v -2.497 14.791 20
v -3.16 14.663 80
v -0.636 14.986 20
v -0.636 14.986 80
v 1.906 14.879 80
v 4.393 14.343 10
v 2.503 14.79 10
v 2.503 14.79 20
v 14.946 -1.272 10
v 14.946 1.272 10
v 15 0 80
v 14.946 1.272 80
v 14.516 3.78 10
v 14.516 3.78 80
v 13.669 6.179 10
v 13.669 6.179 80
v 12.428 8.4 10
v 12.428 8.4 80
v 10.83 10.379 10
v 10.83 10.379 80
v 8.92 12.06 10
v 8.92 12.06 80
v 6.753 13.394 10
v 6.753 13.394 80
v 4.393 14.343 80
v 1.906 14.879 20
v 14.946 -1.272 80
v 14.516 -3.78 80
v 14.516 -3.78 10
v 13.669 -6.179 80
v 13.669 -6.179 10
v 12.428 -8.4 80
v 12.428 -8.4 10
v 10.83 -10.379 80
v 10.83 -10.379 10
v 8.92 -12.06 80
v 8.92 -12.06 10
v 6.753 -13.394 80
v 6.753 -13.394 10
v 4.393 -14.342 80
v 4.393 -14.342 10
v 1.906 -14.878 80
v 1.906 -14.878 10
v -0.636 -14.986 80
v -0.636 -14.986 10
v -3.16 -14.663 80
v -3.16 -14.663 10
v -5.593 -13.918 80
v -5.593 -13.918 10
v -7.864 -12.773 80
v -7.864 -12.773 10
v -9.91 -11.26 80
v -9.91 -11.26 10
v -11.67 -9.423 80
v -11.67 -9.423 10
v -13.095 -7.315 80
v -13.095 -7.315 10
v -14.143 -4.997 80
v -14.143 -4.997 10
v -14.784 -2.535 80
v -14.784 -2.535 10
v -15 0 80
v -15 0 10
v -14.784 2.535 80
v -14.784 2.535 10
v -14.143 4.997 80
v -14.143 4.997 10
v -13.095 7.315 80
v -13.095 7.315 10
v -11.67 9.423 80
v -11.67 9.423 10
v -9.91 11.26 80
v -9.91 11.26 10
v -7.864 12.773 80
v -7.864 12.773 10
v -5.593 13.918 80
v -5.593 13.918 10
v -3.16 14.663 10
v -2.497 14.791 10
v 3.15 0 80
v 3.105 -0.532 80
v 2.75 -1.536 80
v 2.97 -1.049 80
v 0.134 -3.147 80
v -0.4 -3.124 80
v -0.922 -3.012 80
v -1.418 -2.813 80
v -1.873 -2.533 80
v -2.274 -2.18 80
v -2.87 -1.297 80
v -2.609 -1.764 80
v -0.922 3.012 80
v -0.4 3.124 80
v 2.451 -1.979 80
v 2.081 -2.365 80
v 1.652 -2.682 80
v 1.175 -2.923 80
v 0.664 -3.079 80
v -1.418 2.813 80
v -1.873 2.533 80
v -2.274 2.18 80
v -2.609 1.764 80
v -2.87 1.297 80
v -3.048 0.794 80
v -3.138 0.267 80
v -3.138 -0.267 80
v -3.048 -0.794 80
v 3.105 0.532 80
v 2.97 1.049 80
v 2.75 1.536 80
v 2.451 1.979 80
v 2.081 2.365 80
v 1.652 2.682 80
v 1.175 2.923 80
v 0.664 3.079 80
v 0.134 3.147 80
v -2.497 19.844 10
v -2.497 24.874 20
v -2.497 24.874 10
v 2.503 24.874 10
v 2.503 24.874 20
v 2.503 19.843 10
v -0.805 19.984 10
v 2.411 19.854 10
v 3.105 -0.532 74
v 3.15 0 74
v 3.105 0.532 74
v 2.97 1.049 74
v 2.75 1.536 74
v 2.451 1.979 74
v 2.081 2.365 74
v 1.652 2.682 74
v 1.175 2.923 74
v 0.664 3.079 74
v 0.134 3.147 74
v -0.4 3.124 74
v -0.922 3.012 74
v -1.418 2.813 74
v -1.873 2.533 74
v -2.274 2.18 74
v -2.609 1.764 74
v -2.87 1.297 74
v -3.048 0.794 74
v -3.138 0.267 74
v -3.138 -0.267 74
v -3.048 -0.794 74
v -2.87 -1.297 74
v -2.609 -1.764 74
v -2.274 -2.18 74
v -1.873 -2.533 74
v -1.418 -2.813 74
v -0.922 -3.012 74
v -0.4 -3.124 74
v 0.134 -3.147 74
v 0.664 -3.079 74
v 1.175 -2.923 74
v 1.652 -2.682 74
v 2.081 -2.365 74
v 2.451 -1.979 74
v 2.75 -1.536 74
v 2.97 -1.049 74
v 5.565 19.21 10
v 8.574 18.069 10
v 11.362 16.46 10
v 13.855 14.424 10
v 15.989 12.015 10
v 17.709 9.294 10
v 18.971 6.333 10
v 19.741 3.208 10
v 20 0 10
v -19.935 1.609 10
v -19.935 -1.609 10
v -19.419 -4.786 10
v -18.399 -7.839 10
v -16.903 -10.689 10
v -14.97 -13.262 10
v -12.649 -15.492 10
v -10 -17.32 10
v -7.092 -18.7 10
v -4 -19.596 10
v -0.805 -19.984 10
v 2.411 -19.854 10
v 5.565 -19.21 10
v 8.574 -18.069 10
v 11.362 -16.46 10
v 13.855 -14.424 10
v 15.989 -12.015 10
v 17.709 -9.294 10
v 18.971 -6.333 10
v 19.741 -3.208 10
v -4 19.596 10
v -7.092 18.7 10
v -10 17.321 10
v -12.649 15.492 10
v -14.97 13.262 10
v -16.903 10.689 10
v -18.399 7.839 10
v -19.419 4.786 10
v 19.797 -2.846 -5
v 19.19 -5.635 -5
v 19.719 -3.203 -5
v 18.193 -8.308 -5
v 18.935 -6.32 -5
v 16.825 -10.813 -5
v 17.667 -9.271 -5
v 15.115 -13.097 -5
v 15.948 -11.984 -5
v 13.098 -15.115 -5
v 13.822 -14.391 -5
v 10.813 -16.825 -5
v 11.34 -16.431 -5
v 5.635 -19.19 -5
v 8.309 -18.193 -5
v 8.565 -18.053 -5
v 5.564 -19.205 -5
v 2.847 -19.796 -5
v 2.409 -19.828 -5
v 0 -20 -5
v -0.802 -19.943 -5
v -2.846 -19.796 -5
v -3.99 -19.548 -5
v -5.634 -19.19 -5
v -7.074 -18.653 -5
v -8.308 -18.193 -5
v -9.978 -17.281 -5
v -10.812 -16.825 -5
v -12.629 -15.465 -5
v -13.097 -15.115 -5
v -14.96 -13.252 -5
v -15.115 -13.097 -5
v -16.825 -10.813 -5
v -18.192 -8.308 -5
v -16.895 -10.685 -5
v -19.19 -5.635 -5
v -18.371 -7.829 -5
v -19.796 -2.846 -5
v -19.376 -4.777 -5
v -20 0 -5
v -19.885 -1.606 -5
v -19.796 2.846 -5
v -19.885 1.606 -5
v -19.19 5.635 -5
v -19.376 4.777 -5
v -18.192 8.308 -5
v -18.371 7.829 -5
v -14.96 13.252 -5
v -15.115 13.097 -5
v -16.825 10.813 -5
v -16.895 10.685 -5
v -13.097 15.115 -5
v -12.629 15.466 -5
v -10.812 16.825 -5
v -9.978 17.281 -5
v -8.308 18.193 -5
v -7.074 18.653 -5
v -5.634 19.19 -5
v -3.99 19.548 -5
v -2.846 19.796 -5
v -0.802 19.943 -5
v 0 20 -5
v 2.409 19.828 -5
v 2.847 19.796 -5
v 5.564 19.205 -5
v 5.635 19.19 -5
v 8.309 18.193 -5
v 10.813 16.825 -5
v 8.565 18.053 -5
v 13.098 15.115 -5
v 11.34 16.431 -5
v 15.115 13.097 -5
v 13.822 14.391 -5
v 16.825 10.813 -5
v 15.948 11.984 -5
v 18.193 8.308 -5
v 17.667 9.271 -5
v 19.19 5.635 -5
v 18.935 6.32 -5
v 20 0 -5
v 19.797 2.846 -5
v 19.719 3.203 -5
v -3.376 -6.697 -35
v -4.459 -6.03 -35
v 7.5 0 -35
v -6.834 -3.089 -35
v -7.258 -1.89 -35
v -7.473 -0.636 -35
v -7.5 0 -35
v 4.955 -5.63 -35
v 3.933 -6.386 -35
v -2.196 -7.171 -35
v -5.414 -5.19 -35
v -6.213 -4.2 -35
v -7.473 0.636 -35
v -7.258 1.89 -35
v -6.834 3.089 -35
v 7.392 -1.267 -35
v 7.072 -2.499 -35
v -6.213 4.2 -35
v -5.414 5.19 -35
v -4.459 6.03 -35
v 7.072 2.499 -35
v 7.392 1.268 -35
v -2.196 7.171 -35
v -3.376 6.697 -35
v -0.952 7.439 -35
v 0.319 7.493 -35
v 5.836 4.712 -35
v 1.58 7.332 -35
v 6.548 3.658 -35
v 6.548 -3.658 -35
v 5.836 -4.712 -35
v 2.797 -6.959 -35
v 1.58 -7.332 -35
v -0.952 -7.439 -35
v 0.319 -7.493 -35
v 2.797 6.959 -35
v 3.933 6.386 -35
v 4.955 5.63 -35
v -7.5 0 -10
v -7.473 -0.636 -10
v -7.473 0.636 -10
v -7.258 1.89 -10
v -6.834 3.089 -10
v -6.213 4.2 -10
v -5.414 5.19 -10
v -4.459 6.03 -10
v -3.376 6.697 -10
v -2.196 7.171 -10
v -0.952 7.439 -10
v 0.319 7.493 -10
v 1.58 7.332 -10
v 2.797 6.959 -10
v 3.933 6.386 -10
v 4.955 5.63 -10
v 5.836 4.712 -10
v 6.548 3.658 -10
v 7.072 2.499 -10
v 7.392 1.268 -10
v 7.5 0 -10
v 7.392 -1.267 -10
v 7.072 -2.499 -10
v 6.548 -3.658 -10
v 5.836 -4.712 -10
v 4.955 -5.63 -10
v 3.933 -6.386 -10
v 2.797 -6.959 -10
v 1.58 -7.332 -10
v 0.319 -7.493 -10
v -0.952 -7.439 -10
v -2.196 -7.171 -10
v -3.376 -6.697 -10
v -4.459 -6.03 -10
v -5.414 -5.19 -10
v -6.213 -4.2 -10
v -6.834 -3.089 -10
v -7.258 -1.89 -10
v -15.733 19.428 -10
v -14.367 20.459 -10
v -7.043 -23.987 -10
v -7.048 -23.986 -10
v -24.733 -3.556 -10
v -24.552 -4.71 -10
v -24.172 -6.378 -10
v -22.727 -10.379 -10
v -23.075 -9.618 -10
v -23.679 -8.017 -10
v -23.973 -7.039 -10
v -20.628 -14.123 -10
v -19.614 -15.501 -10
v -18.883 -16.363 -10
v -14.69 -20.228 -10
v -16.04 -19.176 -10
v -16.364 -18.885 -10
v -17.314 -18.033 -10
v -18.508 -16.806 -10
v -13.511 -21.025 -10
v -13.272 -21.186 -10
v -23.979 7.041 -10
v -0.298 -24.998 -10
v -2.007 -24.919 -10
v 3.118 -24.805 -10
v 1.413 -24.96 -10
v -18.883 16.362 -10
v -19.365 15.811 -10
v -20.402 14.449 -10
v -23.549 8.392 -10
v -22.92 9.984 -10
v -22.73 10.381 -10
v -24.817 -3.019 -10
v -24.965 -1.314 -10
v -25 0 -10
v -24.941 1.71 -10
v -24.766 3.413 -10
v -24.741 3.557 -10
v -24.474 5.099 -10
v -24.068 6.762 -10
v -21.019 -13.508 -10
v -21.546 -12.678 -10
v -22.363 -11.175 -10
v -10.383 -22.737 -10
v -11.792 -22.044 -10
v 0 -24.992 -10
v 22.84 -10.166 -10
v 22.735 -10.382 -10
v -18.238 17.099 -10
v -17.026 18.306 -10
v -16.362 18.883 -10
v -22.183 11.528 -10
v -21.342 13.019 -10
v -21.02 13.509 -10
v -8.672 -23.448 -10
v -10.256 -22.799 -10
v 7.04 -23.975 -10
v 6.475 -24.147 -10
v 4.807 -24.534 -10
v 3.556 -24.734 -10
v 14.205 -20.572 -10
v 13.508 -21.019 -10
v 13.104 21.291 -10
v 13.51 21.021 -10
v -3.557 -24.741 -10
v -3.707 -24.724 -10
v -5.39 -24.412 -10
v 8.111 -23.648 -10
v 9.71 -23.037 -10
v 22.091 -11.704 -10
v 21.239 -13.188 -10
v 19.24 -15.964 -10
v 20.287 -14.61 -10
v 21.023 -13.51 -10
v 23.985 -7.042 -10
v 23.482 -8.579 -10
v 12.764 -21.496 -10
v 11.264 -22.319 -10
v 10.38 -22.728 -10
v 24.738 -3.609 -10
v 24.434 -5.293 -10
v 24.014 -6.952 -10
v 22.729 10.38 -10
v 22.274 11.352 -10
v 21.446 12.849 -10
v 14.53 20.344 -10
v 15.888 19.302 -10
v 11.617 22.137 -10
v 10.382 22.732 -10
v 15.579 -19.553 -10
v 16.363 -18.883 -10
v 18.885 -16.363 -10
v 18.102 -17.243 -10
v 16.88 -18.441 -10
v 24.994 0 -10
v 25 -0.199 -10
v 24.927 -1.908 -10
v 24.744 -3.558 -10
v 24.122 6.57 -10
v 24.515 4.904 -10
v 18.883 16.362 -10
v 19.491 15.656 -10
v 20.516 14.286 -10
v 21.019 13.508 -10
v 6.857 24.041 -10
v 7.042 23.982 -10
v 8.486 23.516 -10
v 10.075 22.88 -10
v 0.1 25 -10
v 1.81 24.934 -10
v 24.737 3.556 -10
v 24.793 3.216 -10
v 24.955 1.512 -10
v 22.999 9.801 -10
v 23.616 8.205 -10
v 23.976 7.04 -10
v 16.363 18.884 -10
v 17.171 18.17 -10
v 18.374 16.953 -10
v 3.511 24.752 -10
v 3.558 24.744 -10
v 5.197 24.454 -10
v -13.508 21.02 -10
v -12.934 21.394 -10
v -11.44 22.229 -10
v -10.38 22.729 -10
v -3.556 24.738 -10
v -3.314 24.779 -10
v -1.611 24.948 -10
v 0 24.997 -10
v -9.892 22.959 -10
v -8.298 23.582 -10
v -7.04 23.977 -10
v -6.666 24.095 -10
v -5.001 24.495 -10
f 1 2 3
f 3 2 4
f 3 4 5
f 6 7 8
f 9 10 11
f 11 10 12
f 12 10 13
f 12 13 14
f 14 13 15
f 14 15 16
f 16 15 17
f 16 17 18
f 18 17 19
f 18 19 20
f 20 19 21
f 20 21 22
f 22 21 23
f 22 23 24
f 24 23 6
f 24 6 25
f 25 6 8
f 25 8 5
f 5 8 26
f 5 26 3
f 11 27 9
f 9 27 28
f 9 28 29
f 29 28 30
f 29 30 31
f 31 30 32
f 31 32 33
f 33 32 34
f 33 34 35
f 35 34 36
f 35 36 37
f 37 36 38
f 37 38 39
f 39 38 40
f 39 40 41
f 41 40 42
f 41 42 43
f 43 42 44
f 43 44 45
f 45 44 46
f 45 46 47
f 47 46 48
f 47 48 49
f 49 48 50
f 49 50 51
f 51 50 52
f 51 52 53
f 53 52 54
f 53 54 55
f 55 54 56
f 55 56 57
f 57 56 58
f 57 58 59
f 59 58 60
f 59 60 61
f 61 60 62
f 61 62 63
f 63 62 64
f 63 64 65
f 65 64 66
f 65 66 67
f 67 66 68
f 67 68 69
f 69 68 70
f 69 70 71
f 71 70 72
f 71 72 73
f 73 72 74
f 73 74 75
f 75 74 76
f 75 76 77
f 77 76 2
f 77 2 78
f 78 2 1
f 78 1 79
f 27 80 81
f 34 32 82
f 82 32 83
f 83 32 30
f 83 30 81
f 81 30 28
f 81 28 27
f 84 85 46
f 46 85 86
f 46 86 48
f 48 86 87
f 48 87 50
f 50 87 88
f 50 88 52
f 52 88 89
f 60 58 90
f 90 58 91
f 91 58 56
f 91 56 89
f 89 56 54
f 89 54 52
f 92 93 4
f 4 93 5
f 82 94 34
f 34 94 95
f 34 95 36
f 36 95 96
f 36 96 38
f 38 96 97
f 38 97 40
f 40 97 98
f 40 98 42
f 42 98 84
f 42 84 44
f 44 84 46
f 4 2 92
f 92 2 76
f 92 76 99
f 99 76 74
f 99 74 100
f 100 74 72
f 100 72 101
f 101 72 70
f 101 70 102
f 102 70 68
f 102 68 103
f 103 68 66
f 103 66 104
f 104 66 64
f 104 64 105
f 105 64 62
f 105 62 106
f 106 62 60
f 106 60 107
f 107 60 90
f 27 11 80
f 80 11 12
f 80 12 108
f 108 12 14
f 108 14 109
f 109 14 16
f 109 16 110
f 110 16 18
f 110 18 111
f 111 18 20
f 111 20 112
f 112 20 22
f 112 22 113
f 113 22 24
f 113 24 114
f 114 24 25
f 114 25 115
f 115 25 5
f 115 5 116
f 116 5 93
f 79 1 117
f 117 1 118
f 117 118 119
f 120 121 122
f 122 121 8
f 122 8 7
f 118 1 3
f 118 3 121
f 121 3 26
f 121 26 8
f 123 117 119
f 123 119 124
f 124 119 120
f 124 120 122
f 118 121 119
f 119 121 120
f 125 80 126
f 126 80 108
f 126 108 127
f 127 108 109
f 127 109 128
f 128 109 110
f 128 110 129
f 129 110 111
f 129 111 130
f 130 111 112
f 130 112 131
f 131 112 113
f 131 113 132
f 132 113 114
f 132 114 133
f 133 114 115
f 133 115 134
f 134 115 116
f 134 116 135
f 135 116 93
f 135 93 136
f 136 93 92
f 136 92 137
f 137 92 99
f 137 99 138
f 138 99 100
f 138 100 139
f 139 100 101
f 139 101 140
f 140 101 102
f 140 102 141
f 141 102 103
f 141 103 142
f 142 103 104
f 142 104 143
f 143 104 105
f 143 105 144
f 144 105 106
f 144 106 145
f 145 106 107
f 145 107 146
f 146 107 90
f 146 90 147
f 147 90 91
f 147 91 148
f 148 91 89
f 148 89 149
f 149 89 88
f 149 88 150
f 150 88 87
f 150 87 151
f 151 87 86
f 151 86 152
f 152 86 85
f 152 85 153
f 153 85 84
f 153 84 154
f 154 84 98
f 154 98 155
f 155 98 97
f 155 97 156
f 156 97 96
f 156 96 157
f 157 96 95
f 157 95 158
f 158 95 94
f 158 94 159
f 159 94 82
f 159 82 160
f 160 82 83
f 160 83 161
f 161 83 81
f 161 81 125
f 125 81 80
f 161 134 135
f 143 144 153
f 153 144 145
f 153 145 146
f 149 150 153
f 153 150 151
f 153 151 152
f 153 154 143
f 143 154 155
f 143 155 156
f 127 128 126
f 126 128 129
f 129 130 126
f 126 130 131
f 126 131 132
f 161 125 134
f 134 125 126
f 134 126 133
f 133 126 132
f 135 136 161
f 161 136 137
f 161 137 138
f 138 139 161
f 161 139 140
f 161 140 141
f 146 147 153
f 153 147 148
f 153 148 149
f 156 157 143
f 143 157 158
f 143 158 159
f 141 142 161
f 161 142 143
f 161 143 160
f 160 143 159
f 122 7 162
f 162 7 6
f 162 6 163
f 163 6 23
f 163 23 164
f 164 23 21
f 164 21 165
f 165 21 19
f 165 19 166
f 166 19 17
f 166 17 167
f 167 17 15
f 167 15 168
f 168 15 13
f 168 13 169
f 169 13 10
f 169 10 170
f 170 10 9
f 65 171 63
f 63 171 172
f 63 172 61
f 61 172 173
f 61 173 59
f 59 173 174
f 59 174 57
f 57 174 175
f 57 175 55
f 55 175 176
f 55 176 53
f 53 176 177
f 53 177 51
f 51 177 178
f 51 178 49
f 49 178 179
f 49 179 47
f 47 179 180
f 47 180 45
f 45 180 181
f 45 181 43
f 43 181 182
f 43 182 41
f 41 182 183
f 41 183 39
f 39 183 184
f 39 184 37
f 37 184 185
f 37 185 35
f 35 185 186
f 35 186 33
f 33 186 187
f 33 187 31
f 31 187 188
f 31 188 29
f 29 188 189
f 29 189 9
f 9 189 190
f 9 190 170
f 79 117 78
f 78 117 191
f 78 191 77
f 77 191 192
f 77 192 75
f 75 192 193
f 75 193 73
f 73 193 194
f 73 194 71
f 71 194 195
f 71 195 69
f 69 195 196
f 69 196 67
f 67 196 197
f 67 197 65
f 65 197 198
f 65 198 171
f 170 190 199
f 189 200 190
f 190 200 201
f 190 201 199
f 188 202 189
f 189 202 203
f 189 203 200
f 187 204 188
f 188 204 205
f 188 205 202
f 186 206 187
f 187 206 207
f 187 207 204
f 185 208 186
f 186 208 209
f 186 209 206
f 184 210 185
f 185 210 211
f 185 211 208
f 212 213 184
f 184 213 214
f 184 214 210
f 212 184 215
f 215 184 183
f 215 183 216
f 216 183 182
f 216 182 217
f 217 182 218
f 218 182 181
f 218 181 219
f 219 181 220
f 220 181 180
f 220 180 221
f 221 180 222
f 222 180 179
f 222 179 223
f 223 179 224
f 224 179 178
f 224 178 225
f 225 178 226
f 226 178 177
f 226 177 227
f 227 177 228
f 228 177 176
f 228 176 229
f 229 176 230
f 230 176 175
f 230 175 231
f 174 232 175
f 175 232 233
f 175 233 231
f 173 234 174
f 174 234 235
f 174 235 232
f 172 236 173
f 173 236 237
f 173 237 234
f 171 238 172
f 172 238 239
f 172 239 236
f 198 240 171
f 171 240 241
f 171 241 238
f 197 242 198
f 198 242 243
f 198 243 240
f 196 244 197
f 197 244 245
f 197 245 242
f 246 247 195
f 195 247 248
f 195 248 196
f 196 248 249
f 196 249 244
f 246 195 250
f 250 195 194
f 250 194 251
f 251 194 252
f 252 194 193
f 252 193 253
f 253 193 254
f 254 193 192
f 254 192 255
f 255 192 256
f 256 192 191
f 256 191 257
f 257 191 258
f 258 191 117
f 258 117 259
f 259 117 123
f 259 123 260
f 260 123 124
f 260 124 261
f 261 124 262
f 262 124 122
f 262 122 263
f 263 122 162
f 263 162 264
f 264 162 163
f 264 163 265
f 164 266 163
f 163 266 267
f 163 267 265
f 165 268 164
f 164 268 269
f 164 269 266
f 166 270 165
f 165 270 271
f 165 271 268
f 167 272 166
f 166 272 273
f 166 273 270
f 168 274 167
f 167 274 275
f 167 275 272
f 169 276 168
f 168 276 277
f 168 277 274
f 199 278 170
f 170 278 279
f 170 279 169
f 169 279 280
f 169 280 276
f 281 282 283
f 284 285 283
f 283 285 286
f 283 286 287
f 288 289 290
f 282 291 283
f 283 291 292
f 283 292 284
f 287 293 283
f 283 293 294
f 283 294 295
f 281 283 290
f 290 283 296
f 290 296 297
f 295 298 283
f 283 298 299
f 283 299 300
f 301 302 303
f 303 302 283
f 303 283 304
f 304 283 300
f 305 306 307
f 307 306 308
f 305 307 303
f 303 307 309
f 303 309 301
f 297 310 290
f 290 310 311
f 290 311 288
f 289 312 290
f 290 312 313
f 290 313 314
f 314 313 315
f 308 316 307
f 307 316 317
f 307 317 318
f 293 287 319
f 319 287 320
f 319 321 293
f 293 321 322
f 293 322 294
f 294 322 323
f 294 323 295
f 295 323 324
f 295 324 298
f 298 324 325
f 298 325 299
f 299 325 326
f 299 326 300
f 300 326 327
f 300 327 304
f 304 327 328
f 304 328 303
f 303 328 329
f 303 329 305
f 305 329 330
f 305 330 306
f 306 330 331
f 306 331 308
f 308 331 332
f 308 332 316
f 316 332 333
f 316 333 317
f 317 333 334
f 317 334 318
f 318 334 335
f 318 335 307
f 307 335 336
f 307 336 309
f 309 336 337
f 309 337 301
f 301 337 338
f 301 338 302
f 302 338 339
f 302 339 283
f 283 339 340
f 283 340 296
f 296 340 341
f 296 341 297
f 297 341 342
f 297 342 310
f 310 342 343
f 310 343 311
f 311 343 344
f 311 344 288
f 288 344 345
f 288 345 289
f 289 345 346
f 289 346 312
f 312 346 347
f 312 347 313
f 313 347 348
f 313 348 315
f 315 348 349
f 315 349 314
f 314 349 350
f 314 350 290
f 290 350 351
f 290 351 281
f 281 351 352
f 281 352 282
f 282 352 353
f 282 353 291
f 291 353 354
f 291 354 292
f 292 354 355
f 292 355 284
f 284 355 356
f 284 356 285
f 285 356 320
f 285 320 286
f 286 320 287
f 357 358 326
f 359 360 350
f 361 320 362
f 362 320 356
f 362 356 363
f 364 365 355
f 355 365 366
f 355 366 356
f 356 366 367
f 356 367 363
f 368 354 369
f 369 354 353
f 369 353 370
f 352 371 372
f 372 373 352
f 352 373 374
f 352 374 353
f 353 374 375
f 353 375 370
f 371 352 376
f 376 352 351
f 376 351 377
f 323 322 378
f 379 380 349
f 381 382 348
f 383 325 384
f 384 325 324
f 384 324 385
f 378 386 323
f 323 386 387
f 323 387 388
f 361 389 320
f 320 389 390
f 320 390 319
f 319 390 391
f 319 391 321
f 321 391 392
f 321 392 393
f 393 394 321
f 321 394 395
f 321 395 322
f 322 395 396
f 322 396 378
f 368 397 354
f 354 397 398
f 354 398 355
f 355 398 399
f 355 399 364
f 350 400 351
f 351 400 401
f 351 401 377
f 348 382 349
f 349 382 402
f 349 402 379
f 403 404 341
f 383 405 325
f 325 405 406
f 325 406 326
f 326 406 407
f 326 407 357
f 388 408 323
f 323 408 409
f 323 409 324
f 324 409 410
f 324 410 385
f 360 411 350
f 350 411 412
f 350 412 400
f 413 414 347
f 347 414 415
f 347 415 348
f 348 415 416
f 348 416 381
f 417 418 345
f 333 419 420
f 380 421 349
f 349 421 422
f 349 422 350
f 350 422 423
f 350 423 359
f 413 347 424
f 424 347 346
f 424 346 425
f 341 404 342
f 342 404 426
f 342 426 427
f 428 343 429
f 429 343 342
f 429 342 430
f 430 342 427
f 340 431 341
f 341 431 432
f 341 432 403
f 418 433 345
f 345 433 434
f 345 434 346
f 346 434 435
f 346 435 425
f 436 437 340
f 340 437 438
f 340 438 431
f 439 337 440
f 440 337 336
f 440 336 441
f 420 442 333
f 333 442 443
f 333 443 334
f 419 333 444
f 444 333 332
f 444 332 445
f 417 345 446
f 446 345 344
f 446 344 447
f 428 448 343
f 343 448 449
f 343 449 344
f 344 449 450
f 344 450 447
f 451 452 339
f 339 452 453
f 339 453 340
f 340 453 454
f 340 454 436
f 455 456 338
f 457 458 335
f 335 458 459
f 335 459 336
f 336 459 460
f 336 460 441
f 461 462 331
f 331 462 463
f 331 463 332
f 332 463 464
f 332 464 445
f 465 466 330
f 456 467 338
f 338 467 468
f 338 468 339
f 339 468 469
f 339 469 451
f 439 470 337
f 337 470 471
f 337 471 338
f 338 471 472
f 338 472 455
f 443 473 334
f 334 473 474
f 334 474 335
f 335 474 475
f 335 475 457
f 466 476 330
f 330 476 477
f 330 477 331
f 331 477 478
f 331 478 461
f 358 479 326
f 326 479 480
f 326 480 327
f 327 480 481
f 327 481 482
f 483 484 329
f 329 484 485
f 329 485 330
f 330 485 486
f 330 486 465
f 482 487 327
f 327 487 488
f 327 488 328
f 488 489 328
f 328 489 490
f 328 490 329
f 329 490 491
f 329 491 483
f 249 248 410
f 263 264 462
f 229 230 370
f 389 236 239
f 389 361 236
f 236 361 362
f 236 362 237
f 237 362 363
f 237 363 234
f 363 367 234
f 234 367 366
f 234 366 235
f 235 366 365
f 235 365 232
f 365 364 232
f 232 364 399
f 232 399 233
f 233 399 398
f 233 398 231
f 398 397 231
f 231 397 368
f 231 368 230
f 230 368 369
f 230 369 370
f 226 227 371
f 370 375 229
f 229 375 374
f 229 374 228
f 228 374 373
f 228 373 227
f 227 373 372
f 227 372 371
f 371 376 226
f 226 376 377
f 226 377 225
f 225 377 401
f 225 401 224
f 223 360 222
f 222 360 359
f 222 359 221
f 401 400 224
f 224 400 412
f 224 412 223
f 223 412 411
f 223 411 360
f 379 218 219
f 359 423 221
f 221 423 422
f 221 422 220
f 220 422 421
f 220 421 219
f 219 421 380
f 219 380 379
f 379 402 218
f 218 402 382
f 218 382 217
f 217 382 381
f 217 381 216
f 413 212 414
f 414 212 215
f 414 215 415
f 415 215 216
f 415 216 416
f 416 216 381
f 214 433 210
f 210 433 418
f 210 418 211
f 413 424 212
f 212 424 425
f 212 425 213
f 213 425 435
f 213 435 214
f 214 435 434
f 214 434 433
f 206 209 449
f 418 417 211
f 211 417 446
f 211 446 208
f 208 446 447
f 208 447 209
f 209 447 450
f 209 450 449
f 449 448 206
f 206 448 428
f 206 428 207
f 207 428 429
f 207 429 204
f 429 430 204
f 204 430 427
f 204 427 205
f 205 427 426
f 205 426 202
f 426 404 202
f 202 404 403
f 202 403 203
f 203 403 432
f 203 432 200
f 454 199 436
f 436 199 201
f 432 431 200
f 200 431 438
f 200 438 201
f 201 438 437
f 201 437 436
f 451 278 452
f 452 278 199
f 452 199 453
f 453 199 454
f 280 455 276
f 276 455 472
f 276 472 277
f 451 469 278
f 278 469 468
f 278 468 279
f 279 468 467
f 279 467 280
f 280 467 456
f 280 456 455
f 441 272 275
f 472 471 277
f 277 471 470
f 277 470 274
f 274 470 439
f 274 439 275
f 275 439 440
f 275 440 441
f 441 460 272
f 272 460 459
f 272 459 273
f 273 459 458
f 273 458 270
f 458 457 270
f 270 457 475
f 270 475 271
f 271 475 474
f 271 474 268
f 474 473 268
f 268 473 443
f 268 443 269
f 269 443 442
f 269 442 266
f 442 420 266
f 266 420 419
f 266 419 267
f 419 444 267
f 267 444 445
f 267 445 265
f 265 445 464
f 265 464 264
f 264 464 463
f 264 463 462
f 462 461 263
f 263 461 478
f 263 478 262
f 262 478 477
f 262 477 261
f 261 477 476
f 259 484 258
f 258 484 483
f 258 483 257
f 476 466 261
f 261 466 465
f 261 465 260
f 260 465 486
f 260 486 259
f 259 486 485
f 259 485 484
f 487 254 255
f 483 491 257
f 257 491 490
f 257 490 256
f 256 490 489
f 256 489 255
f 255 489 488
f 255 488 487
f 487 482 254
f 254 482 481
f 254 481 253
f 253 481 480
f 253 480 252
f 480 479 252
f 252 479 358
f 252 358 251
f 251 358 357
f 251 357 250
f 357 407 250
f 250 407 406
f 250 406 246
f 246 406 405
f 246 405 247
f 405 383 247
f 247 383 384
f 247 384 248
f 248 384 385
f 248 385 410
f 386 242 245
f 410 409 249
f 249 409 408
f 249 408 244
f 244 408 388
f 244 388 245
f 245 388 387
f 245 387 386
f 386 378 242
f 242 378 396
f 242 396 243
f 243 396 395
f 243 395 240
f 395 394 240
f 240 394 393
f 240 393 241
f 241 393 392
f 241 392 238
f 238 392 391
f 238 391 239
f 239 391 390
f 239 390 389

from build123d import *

# Parameters (mm, degrees)
SKETCH1_R           = 15
BOSS_EXTRUDE1_DEPTH = 80
SKETCH1_2_R         = 15
SKETCH2_R           = 25
SKETCH3_R           = 7.5
BOSS_EXTRUDE2_DEPTH = 25
SKETCH4_W           = 5
SKETCH4_H           = 25
BOSS_EXTRUDE3_DEPTH = 10
SKETCH5_R           = 3.15
CUT_EXTRUDE1_DEPTH  = 6
SKETCH6_R           = 20
BOSS_EXTRUDE4_DEPTH = 15


with BuildPart() as part:
    # Sketch1 → Boss-Extrude1 (new body)
    with BuildSketch(Plane.XY):
        Circle(SKETCH1_R)
    extrude(amount=BOSS_EXTRUDE1_DEPTH)

    # Sketch1<2> → Loft1 section 0
    with BuildSketch(Plane.XY):
        Circle(SKETCH1_2_R)
    # Sketch2 → Loft1 section 1
    with BuildSketch(Plane(origin=(0, 0, -10), x_dir=(-1, 0, 0), z_dir=(0, 0, -1))):
        Circle(SKETCH2_R)
    loft()

    # Sketch3 → Boss-Extrude2 (add)
    with BuildSketch(Plane(origin=(0, 0, -10), x_dir=(-1, 0, 0), z_dir=(0, 0, -1))):
        Circle(SKETCH3_R)
    extrude(amount=BOSS_EXTRUDE2_DEPTH)

    # Sketch4 → Boss-Extrude3 (add)
    with BuildSketch(Plane.XY.offset(10)):
        with Locations((0.003158662, 12.374368268)):
            Rectangle(SKETCH4_W, SKETCH4_H)
    extrude(amount=BOSS_EXTRUDE3_DEPTH)

    # Sketch5 → Cut-Extrude1 (cut)
    with BuildSketch(Plane.XY.offset(80)):
        Circle(SKETCH5_R)
    extrude(amount=-CUT_EXTRUDE1_DEPTH, mode=Mode.SUBTRACT)

    # Sketch6 → Boss-Extrude4 (add)
    with BuildSketch(Plane.XY.offset(10)):
        Circle(SKETCH6_R)
    extrude(amount=-BOSS_EXTRUDE4_DEPTH)


solid = part.part
